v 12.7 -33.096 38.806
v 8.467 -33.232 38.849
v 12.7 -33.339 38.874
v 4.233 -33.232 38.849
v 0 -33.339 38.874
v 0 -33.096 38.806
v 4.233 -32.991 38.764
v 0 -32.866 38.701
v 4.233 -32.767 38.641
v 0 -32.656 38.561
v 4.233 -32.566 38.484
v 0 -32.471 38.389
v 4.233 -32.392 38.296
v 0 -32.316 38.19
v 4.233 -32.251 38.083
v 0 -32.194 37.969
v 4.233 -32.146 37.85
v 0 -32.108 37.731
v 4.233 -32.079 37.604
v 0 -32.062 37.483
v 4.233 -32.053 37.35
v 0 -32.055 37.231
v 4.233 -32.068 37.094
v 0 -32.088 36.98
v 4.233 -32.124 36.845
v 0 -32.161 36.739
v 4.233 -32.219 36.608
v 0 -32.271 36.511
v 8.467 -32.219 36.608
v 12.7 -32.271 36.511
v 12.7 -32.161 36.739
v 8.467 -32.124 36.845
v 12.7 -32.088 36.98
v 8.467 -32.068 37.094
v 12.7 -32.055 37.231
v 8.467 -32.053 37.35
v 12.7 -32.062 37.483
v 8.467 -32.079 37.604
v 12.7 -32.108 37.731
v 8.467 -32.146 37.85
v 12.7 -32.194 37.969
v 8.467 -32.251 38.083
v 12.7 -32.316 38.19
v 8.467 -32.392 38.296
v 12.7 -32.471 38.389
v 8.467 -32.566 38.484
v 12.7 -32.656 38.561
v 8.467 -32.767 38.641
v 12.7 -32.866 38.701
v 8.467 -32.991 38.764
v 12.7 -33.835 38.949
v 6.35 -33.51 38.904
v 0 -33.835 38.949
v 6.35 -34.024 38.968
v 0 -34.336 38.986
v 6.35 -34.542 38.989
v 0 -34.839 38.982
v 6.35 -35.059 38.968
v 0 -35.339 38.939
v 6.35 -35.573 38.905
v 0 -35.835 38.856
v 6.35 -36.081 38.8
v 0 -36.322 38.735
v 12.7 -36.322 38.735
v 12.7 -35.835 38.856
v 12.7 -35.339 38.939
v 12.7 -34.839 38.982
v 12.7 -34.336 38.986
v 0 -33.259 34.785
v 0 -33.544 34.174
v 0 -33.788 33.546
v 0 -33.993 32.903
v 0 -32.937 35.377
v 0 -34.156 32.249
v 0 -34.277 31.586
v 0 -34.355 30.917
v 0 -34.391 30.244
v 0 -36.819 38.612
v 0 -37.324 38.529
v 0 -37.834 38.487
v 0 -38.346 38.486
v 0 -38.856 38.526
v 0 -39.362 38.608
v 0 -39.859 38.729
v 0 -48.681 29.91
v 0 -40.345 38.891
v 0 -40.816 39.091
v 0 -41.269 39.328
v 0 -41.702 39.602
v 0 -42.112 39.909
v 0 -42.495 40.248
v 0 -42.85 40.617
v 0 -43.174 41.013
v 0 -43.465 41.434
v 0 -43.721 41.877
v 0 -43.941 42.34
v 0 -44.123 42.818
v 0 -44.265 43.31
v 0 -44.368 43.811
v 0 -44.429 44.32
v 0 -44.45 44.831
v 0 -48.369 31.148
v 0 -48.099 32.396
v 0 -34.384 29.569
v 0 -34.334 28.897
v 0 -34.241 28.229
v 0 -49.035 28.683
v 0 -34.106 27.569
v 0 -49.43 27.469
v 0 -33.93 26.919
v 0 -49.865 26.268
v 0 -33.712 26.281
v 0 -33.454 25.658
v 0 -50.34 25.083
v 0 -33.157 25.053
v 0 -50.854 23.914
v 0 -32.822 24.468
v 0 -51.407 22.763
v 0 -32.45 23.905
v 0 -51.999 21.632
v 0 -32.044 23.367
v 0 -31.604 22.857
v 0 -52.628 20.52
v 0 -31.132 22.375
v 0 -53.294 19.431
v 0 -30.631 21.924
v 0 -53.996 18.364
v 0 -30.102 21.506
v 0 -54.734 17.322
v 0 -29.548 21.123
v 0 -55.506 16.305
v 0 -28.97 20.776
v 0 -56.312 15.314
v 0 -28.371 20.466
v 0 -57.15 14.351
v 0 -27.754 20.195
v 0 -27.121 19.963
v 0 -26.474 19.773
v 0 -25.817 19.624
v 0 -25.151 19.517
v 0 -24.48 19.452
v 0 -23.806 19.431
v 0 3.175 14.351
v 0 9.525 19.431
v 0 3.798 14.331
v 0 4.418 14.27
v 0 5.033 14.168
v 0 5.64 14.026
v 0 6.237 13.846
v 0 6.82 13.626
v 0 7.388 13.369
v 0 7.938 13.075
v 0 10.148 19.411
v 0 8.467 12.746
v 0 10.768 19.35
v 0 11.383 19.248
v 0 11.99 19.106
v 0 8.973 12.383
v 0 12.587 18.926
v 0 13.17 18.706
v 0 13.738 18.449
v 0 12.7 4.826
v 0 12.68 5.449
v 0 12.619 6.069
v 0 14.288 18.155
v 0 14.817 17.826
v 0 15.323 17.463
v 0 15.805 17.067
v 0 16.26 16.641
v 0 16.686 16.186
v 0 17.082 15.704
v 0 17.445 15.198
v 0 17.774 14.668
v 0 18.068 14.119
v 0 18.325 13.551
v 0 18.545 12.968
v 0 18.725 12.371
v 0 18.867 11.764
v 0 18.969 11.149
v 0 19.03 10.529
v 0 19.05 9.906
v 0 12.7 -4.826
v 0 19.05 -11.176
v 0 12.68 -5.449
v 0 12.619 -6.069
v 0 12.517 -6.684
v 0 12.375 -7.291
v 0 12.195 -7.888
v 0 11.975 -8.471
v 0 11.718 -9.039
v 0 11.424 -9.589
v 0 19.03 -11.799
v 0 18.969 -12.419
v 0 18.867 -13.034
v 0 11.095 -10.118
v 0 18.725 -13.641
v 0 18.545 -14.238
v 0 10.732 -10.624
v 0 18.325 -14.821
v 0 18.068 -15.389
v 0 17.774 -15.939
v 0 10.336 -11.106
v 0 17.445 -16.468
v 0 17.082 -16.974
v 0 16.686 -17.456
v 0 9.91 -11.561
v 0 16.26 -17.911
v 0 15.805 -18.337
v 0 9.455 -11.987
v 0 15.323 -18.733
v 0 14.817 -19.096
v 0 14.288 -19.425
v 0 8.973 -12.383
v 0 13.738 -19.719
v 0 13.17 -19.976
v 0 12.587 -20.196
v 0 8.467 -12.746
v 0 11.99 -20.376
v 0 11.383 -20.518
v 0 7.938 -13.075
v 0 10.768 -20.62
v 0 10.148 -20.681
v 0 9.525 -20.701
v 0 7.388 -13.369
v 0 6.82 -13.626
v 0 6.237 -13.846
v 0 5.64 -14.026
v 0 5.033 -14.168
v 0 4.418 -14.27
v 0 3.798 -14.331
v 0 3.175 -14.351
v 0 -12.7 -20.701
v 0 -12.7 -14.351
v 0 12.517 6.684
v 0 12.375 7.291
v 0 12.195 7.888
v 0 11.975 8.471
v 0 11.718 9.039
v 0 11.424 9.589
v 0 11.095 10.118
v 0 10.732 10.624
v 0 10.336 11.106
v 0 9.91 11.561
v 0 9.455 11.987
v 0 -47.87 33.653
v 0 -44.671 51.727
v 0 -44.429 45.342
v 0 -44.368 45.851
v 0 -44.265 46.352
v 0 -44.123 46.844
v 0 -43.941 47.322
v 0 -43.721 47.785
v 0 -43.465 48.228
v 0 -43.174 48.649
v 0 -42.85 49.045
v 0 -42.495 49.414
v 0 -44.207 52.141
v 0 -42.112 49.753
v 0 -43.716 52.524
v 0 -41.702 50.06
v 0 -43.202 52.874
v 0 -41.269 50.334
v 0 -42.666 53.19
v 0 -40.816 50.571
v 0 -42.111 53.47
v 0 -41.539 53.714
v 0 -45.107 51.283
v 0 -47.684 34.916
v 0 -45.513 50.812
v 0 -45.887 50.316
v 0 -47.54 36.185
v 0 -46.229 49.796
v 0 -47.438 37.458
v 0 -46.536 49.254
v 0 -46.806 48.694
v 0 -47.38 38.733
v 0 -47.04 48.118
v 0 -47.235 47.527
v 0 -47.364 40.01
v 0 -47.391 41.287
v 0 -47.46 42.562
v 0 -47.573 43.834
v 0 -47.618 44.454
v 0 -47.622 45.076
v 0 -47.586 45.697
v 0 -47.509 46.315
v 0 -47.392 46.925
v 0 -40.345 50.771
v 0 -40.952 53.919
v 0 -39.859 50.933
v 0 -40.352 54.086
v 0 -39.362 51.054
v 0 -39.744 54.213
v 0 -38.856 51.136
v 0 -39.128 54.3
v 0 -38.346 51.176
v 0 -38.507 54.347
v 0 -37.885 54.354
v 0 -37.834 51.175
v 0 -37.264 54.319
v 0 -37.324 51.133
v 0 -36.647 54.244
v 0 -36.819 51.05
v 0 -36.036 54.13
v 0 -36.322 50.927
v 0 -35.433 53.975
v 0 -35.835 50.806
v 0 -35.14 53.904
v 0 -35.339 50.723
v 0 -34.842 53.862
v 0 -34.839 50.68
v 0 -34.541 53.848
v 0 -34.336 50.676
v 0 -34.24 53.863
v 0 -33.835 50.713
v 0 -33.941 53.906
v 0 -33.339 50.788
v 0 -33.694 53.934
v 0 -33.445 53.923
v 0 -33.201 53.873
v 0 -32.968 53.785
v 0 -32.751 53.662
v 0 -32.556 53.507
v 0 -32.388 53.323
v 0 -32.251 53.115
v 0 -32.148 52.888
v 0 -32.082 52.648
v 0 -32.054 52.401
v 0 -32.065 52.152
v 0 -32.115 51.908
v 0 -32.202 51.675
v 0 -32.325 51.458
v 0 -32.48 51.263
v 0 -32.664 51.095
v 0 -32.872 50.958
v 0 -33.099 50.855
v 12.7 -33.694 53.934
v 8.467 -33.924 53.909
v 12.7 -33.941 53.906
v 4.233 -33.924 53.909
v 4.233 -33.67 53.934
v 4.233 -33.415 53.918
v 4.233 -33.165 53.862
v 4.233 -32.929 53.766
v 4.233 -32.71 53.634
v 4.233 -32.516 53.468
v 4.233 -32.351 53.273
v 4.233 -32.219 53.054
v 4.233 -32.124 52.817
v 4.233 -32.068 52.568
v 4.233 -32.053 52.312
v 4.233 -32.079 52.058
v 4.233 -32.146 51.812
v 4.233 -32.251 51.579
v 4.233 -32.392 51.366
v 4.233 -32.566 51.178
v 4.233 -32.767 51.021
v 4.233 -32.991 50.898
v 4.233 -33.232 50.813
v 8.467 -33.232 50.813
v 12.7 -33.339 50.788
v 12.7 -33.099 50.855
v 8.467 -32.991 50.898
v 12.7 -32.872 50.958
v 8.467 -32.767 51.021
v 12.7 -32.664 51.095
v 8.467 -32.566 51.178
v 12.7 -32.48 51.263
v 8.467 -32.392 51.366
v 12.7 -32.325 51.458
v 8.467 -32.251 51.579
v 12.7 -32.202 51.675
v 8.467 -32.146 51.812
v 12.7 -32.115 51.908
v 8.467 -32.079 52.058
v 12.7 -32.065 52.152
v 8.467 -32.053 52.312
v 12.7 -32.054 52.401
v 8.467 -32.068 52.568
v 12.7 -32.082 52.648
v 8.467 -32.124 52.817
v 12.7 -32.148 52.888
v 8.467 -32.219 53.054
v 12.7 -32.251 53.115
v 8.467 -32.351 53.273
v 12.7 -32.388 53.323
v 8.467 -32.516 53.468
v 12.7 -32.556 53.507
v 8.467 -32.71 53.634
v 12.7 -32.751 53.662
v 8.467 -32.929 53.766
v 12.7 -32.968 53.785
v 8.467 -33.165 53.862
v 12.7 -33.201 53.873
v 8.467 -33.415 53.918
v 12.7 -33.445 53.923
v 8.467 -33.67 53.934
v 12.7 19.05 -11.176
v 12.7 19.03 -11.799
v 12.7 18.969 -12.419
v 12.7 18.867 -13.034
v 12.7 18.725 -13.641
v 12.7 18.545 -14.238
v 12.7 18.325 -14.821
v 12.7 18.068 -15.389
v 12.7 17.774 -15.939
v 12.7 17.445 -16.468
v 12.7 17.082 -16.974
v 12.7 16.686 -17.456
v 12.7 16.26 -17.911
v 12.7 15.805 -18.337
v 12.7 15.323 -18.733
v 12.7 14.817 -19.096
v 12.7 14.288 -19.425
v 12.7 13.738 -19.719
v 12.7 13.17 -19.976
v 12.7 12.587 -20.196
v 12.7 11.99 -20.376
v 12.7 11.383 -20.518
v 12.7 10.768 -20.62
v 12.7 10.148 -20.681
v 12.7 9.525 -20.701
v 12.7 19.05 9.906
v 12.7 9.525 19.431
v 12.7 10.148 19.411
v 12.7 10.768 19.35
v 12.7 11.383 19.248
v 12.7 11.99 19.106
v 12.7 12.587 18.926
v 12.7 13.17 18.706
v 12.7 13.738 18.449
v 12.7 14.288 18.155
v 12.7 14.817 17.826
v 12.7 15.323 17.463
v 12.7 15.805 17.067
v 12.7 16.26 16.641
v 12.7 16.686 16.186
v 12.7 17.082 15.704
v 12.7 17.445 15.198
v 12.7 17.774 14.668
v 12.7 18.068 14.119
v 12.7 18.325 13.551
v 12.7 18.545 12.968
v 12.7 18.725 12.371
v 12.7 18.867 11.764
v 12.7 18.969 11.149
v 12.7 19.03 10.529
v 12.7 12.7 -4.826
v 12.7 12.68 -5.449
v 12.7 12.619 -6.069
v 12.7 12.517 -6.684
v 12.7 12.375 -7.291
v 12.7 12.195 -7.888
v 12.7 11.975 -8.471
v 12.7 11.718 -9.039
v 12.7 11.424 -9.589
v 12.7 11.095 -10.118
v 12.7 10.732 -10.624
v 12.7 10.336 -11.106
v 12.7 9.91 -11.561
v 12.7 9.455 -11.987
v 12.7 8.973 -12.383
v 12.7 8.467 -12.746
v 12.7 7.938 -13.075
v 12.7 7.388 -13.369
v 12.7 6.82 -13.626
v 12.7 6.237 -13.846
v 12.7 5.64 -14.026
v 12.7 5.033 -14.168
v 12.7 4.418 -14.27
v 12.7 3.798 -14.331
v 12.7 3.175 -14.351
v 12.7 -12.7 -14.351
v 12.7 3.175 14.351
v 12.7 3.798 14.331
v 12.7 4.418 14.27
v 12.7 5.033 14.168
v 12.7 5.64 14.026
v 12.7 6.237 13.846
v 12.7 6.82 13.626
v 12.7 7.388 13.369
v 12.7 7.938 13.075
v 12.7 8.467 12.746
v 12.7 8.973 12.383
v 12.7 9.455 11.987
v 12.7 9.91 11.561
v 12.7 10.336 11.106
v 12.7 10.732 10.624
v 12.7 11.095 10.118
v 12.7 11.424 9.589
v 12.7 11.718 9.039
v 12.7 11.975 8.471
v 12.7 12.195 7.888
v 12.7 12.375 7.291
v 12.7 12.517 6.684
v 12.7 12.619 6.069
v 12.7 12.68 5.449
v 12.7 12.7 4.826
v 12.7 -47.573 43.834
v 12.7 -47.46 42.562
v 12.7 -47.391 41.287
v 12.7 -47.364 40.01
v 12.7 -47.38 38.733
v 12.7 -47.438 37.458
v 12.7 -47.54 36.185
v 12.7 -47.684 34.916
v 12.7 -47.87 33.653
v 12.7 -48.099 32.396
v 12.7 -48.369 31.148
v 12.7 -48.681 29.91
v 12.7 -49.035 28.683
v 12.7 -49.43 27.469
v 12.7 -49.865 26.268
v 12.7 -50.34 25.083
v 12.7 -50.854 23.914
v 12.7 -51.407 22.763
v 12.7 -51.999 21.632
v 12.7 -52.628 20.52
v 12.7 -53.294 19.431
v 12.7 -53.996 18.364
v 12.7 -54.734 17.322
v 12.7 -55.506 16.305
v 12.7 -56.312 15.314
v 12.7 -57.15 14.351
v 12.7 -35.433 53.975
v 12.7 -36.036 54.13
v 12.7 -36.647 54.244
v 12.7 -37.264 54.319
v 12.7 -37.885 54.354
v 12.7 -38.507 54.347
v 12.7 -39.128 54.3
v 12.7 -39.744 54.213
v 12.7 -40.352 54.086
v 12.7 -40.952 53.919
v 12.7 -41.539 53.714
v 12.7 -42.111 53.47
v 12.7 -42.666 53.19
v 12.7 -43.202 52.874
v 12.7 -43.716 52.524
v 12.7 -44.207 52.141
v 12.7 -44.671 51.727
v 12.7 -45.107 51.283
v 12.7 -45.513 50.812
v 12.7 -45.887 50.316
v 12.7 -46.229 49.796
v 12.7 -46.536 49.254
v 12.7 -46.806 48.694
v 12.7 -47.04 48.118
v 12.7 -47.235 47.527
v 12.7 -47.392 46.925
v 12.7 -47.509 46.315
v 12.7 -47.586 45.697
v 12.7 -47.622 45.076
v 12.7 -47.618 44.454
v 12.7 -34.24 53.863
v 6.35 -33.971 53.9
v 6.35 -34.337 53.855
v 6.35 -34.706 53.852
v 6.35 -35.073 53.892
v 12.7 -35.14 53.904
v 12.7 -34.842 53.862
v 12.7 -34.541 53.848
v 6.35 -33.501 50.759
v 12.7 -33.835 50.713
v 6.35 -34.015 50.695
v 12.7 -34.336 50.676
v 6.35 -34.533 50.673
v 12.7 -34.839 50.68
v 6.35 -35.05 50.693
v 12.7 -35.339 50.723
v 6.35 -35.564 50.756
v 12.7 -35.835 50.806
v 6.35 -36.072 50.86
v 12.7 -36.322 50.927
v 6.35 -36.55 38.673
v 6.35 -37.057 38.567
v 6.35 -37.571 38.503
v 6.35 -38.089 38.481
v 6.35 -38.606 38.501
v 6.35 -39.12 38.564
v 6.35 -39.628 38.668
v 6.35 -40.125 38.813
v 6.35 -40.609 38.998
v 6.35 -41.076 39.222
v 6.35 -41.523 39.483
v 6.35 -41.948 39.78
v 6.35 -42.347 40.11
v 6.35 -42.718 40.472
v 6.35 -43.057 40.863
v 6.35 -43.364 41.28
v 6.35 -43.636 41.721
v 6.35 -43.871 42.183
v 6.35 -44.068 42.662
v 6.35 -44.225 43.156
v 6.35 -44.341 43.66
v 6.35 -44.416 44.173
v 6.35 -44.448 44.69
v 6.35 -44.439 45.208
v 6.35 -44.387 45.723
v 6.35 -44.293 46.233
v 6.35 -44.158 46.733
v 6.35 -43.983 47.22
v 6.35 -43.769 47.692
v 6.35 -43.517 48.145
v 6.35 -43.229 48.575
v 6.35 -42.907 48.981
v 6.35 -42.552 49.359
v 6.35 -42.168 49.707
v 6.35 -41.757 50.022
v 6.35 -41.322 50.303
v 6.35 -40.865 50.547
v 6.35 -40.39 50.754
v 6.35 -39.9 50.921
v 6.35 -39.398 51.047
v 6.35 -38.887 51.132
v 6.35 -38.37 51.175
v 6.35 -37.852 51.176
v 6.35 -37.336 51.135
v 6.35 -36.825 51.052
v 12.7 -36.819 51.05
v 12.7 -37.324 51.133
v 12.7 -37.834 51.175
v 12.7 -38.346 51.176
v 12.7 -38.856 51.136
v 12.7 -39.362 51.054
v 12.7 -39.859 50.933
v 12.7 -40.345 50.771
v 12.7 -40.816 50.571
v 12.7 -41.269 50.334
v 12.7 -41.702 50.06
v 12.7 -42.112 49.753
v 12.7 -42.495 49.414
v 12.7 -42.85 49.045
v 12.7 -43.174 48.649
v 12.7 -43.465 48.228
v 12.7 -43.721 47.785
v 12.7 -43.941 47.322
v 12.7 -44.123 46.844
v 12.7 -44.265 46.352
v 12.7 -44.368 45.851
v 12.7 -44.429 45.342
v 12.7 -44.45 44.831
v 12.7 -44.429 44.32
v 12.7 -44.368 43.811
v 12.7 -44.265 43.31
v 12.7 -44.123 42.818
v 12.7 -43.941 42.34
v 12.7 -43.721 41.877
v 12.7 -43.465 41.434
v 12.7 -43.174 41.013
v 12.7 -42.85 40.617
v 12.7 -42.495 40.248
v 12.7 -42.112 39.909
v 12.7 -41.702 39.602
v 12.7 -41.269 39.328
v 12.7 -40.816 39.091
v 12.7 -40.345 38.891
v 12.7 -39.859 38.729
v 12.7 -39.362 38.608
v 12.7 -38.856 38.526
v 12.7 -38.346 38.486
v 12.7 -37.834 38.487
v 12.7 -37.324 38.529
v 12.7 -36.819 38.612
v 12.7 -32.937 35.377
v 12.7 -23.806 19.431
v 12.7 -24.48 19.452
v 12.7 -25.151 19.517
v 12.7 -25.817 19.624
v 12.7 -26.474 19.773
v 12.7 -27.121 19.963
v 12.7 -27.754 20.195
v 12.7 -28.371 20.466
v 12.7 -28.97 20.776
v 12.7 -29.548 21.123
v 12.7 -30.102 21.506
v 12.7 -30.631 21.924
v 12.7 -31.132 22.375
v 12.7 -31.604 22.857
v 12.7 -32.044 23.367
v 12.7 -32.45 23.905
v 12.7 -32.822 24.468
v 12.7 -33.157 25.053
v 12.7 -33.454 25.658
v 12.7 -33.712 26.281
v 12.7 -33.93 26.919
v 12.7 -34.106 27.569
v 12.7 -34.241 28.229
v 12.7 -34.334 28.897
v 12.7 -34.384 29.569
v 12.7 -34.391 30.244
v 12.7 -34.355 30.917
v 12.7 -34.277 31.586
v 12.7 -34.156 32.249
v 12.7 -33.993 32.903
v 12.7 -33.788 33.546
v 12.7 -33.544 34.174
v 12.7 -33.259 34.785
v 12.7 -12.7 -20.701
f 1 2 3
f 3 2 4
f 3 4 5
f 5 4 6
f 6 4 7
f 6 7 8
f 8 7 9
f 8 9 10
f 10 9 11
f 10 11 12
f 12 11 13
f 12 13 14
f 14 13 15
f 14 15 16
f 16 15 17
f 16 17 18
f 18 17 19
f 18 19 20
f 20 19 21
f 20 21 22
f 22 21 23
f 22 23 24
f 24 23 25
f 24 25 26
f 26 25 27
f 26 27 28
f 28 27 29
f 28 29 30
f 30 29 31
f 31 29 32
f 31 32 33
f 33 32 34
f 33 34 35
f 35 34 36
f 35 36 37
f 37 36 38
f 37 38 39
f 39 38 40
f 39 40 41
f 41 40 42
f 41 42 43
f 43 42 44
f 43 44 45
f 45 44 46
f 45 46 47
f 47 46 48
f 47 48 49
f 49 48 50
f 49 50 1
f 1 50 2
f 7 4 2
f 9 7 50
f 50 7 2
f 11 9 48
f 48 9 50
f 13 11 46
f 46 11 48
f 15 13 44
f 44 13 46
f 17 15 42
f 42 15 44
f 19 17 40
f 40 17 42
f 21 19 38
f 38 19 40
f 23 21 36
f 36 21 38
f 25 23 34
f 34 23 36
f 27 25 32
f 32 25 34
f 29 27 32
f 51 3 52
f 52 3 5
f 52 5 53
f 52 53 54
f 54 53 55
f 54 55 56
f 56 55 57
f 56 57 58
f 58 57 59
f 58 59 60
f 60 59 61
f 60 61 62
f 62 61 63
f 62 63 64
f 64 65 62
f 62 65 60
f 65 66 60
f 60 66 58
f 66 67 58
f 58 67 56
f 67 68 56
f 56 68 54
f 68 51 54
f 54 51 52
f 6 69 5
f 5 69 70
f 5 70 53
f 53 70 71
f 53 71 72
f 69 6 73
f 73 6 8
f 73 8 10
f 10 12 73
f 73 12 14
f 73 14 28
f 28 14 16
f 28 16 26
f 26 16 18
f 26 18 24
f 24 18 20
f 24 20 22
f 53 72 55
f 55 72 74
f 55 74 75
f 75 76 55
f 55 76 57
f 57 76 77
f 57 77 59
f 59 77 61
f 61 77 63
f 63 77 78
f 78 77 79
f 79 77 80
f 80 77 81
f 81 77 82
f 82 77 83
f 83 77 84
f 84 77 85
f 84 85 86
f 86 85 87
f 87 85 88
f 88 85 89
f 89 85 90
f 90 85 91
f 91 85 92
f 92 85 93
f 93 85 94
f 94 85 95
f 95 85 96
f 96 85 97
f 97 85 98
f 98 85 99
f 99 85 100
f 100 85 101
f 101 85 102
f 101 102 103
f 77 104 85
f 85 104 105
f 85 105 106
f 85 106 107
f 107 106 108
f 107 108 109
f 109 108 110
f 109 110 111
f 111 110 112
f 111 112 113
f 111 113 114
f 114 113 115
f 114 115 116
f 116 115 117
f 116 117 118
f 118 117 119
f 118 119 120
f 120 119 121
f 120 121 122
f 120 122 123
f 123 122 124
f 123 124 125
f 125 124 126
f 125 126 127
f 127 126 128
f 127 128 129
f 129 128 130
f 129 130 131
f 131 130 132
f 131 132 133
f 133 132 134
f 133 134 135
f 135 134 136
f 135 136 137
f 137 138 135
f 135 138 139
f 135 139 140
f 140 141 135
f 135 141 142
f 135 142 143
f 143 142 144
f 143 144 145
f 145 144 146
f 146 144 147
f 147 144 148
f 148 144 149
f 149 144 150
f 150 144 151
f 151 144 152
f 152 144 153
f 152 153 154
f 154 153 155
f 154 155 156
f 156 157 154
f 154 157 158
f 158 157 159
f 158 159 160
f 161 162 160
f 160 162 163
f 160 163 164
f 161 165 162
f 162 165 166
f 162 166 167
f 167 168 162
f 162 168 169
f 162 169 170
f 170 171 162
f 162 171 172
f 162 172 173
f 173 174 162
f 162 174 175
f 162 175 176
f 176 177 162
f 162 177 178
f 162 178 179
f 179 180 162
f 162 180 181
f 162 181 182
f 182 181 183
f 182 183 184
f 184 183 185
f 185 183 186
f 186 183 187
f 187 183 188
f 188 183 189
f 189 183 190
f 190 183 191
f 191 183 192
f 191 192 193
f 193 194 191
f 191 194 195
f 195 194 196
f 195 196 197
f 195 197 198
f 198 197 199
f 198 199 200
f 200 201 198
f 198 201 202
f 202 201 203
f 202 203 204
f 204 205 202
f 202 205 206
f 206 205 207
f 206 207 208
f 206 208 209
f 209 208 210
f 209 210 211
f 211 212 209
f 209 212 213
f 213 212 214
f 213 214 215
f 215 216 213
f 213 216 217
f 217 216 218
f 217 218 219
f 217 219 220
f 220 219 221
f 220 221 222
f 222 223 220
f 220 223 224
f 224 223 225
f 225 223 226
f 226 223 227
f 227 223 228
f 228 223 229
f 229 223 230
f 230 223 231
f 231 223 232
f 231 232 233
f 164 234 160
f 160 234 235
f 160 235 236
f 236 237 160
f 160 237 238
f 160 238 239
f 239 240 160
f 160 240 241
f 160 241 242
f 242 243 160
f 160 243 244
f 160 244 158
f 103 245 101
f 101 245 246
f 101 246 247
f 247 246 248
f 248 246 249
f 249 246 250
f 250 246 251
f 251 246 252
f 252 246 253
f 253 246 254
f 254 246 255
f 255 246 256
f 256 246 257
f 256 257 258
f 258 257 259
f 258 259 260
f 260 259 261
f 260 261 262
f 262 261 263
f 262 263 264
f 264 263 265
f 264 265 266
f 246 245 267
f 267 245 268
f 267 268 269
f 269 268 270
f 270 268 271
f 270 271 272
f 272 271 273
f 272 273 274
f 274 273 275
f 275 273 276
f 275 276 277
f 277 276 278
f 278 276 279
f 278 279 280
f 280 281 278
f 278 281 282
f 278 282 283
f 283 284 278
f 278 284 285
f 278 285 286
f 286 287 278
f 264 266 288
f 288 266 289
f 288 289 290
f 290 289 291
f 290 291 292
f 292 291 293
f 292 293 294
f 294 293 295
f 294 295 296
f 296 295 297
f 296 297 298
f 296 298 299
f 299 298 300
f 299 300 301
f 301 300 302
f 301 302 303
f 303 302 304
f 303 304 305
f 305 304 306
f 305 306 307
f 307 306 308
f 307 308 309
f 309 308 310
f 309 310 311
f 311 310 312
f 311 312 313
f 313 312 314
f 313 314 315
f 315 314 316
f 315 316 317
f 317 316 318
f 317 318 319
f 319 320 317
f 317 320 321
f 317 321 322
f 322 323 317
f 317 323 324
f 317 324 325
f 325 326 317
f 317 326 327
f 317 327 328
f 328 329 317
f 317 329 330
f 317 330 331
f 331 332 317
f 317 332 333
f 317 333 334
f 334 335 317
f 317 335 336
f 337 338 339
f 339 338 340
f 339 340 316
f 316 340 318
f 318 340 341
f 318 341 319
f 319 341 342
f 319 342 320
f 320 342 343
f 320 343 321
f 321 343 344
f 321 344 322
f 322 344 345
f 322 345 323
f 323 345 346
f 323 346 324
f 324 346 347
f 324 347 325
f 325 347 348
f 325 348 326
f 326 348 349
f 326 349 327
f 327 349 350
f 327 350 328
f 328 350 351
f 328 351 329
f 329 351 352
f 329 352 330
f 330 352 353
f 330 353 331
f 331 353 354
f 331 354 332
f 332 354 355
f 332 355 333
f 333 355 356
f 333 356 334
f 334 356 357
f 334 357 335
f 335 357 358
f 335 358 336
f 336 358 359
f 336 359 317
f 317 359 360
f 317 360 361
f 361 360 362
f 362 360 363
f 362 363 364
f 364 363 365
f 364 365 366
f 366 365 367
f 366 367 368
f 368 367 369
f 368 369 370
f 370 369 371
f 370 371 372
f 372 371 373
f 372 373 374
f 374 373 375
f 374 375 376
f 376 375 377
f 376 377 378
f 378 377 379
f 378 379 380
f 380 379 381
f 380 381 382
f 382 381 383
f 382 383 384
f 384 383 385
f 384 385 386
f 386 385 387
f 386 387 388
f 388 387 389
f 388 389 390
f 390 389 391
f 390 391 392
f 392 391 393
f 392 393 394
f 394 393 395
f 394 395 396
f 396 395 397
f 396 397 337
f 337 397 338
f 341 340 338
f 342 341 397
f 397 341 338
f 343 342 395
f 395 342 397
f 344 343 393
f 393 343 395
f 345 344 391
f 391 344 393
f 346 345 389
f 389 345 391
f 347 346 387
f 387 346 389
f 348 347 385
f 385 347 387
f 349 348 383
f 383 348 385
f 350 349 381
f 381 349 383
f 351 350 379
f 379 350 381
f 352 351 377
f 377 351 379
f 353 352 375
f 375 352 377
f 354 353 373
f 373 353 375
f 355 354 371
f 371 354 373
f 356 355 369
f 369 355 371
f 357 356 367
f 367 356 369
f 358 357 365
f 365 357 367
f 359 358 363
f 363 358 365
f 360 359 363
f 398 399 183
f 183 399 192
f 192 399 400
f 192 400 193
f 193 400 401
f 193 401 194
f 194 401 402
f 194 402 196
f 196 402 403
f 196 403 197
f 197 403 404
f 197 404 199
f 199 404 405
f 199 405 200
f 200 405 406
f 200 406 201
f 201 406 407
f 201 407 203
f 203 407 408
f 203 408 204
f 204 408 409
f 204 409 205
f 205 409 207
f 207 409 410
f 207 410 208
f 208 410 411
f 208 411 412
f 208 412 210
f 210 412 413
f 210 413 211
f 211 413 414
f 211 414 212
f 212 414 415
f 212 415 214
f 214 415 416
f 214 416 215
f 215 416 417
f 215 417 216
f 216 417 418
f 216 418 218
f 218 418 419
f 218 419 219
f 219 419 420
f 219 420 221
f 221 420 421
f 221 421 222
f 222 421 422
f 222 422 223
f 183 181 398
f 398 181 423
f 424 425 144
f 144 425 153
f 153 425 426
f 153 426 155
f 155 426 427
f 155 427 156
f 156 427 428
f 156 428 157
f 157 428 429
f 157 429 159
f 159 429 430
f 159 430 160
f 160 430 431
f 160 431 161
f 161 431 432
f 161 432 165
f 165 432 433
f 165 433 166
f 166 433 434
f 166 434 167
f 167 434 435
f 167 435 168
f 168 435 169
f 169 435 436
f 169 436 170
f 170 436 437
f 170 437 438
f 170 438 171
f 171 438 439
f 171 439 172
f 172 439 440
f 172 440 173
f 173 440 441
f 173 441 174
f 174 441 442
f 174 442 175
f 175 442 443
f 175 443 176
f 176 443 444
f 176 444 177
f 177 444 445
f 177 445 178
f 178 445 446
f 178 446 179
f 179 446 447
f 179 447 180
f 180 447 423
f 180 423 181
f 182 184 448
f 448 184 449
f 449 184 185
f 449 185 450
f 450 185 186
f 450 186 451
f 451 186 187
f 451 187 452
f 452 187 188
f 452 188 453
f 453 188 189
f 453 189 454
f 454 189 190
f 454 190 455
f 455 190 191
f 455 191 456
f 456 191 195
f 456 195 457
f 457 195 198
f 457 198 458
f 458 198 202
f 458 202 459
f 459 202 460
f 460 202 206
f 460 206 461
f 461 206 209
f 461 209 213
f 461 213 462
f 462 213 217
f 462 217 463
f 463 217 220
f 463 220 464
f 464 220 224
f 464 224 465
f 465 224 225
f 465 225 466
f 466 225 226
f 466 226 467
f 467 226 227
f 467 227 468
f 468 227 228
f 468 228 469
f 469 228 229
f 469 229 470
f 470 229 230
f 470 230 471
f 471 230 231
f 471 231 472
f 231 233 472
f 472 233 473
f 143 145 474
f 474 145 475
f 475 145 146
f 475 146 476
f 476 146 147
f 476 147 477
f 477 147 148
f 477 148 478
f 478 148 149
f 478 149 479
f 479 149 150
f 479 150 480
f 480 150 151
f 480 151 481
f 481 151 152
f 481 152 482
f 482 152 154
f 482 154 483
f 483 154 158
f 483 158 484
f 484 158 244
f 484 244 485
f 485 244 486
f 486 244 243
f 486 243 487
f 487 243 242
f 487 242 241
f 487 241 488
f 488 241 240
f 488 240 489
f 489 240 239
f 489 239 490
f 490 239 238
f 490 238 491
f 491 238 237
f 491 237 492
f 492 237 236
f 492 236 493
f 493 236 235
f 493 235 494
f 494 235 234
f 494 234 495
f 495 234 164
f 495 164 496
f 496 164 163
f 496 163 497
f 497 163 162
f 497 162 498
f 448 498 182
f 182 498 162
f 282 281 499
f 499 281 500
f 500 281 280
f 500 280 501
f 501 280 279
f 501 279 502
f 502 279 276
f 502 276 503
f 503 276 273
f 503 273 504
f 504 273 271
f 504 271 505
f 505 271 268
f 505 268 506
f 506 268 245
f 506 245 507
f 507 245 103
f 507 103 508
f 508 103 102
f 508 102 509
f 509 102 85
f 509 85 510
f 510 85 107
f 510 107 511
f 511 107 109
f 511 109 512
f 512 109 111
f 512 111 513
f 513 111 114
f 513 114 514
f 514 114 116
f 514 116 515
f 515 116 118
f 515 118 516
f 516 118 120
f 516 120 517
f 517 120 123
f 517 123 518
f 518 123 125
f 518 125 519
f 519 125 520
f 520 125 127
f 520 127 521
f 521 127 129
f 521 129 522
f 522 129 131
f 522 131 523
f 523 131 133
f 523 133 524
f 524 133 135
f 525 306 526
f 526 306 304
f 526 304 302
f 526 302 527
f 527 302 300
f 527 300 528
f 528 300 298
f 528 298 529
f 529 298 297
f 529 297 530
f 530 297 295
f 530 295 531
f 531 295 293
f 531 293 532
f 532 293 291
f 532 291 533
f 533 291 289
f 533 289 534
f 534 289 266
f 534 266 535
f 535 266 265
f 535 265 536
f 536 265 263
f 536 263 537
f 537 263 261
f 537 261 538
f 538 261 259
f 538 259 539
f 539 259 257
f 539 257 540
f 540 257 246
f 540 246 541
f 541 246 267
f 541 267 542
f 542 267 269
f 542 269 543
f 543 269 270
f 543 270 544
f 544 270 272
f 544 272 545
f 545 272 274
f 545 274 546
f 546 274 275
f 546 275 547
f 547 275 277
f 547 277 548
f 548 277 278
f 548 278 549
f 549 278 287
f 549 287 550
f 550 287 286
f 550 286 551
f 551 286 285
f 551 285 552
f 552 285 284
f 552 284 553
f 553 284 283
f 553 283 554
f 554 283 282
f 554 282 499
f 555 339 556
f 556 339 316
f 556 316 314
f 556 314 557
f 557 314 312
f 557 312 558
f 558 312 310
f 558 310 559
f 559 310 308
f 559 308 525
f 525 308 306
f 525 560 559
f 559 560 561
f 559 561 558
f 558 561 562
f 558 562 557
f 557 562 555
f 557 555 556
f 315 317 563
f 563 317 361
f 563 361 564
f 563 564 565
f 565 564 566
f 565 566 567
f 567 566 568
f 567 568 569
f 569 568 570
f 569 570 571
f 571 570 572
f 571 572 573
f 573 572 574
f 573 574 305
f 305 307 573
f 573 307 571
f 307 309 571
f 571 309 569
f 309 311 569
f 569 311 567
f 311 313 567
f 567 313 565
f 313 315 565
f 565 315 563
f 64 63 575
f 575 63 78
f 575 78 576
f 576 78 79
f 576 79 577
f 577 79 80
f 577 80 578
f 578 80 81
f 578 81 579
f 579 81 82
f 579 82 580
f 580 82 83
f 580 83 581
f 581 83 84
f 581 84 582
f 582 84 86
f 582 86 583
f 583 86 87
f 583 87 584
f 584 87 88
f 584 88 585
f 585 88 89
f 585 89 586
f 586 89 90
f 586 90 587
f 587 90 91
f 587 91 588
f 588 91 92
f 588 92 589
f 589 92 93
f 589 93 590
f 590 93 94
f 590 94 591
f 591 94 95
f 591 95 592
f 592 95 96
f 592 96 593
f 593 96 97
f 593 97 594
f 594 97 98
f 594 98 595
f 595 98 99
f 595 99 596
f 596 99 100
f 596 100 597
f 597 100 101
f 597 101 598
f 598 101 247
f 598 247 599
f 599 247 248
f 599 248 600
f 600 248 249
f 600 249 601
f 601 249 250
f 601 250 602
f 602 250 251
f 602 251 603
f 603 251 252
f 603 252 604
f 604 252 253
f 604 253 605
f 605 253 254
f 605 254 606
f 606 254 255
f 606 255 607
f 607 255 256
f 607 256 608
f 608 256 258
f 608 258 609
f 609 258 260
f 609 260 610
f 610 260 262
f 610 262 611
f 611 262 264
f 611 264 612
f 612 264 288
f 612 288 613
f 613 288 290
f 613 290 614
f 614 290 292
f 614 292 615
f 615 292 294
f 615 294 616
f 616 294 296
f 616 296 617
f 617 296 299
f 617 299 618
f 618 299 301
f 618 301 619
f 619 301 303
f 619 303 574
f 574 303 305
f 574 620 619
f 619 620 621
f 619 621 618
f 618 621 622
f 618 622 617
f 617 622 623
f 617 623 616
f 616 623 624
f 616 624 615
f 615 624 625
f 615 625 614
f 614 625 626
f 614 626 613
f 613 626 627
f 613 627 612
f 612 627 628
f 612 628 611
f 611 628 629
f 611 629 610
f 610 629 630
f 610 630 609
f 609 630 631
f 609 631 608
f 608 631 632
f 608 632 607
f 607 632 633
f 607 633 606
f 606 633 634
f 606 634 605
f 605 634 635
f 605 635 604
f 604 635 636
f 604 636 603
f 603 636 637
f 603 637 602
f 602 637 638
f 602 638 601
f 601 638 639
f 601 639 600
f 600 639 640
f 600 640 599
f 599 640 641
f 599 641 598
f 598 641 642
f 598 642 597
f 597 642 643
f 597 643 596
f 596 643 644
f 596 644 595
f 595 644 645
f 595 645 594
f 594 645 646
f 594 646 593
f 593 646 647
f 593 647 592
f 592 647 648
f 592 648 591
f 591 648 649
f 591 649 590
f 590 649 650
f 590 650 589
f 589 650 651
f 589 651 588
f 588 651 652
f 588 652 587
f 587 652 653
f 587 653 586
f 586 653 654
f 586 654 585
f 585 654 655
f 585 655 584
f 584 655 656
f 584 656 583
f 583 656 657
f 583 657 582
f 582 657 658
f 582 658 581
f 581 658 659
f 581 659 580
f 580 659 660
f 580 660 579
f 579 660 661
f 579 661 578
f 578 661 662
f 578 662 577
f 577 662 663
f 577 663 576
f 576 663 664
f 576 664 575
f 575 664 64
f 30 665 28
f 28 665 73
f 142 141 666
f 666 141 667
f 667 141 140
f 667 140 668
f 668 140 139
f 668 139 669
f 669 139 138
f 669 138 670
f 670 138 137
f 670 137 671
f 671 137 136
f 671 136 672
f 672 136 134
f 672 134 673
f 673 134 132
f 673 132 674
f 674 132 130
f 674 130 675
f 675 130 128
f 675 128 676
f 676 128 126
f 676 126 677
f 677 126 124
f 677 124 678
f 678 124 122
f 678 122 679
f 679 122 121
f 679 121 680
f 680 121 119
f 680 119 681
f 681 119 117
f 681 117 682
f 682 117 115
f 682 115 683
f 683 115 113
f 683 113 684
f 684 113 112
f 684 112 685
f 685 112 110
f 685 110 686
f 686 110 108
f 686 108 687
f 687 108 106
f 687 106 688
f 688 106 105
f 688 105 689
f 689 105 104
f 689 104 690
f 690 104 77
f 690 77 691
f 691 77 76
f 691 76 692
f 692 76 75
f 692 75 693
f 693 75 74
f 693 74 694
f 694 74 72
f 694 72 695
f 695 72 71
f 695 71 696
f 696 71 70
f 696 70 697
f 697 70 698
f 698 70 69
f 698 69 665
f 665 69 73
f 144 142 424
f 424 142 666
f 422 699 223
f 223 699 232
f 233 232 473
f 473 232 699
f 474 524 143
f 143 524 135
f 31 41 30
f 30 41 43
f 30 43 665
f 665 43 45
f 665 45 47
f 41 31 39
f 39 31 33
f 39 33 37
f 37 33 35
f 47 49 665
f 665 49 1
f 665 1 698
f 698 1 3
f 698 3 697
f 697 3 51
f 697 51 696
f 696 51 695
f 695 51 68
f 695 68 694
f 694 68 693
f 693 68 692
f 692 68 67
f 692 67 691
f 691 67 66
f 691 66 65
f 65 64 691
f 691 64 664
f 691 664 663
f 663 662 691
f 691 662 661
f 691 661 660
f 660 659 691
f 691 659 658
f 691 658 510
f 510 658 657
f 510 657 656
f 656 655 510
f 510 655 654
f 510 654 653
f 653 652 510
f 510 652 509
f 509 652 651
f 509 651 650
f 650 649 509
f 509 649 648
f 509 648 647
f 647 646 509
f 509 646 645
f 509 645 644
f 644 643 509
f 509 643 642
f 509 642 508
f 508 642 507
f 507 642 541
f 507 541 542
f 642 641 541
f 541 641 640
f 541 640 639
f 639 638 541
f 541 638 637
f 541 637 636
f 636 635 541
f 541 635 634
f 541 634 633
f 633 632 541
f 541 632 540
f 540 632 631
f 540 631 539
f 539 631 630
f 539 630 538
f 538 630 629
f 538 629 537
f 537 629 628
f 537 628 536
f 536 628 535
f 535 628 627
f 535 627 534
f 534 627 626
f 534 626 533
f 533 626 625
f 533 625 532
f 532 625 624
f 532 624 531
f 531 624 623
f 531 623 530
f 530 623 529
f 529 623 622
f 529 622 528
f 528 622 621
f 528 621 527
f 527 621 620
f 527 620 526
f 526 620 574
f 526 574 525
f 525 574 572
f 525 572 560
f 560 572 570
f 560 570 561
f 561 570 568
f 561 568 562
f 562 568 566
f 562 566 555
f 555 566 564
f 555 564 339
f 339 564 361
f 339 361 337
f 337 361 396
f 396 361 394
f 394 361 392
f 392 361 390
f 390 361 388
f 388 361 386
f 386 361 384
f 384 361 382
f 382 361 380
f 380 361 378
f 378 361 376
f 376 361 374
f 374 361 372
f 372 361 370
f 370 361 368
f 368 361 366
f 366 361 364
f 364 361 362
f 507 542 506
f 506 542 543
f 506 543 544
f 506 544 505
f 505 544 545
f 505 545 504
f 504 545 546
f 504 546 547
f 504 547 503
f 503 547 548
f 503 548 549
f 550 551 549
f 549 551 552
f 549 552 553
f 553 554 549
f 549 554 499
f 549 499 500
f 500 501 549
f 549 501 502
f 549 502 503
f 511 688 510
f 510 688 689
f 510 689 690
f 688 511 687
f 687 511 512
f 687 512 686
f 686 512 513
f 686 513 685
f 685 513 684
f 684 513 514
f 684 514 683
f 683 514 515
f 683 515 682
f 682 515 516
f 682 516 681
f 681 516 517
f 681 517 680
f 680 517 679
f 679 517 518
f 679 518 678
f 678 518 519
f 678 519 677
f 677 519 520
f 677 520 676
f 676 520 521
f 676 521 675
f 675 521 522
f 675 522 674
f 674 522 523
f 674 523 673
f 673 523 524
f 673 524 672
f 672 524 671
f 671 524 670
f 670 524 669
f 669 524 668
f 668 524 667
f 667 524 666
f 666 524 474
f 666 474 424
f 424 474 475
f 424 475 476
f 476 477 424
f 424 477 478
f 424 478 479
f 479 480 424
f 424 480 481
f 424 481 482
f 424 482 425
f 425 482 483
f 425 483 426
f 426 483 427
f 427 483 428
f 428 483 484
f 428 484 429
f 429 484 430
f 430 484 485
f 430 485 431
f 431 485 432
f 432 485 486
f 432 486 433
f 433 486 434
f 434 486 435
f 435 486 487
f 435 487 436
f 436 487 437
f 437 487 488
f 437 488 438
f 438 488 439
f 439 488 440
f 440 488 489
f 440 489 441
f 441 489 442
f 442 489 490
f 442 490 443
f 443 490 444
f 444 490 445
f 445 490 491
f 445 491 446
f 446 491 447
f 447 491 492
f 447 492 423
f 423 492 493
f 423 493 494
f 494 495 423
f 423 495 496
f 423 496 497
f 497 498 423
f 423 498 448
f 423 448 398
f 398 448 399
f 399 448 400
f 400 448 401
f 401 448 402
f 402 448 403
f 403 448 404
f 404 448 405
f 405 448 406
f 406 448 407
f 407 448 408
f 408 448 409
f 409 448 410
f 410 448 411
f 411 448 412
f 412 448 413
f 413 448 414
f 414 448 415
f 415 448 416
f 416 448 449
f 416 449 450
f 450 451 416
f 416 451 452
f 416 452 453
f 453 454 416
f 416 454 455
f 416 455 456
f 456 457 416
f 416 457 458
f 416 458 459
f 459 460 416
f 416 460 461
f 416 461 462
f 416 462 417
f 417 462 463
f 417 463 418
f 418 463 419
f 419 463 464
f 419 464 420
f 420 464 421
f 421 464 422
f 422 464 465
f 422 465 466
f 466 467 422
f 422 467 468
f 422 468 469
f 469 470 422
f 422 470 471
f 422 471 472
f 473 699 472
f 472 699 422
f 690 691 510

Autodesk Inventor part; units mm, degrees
ref_plane "YZ Plane" through (0, 0, 0) normal (1, 0, 0) x (0, 1, 0)
ref_plane "XZ Plane" through (0, 0, 0) normal (0, 1, 0) x (-1, 0, 0)
ref_plane "XY Plane" through (0, 0, 0) normal (0, 0, 1) x (1, 0, 0)
sketch "Sketch1" plane through (0, 0, 0) normal (1, 0, 0) x (0, 1, 0)
  line L0 (-57.15, 14.351) -> (12.7, 14.351)
  line L1 (12.7, 14.351) -> (12.7, -14.351)
  line L2 (12.7, -14.351) -> (-12.7, -14.351)
  line L3 (-12.7, -14.351) -> (-12.7, -20.701)
  line L4 (-12.7, -20.701) -> (19.05, -20.701)
  line L5 (19.05, -20.701) -> (19.05, 19.431)
  line L6 (19.05, 19.431) -> (-23.8064, 19.431)
  arc A0 (-36.322, 50.927) -> (-36.322, 38.735) centre (-38.1, 44.831) ccw
  arc A1 (-36.322, 50.927) -> (-31.3296, 51.5467) centre (-34.544, 57.023) ccw
  arc A2 (-35.433, 53.975) -> (-47.5727, 43.8339) centre (-38.1, 44.831) ccw
  arc A3 (-57.15, 14.351) -> (-47.5727, 43.8339) centre (-85.4633, 39.8454) ccw
  arc A4 (-35.433, 53.975) -> (-32.9368, 54.2848) centre (-34.544, 57.023) ccw
  line L7 (-32.9368, 54.2848) -> (-31.3296, 51.5467)
  arc A5 (-31.3296, 38.1153) -> (-36.322, 38.735) centre (-34.544, 32.639) ccw
  line L8 (-31.3296, 38.1153) -> (-32.9368, 35.3772)
  line L9 (-38.1, 44.831) -> (-26.6352, 44.831) construction
  arc A6 (-32.9368, 35.3772) -> (-23.8064, 19.431) centre (-23.8064, 30.018) ccw
  point P0 (0, 0)
  point P1 (12.7, 0)
  dimension "d0" = 5.08
  dimension "d1" = 3.175
  dimension "d2" = 38.1
  dimension "d3" = 6.35
  dimension "d5" = 6.35
  dimension "d7" = 50.8
  dimension "d8" = 6.35
  dimension "d9" = 6.35
  dimension "d11" = 19.05
  dimension "d12" = 12.7
  dimension "d13" = 25.4
  dimension "d14" = 28.702
  dimension "d15" = 6.35
  dimension "d16" = 12.192
  dimension "d17" = 25.4
extrude "Extrusion1" add sketch "Sketch1" along normal blind 12.7
fillet "Fillet1" radius 9.525 4 edges at (6.35, 12.7, 14.351) (6.35, 12.7, -14.351) (6.35, 19.05, 19.431) (6.35, 19.05, -20.701)
fillet "Fillet2" radius 1.5875 3 edges at (6.35, -31.3296, 51.5467) (6.35, -32.9368, 54.2848) (6.35, -31.3296, 38.1153)
equation "\"d15\" = d3"
equation "\"d16\" = 1.92 * d5"
properties part number "Curtain Adapter"
